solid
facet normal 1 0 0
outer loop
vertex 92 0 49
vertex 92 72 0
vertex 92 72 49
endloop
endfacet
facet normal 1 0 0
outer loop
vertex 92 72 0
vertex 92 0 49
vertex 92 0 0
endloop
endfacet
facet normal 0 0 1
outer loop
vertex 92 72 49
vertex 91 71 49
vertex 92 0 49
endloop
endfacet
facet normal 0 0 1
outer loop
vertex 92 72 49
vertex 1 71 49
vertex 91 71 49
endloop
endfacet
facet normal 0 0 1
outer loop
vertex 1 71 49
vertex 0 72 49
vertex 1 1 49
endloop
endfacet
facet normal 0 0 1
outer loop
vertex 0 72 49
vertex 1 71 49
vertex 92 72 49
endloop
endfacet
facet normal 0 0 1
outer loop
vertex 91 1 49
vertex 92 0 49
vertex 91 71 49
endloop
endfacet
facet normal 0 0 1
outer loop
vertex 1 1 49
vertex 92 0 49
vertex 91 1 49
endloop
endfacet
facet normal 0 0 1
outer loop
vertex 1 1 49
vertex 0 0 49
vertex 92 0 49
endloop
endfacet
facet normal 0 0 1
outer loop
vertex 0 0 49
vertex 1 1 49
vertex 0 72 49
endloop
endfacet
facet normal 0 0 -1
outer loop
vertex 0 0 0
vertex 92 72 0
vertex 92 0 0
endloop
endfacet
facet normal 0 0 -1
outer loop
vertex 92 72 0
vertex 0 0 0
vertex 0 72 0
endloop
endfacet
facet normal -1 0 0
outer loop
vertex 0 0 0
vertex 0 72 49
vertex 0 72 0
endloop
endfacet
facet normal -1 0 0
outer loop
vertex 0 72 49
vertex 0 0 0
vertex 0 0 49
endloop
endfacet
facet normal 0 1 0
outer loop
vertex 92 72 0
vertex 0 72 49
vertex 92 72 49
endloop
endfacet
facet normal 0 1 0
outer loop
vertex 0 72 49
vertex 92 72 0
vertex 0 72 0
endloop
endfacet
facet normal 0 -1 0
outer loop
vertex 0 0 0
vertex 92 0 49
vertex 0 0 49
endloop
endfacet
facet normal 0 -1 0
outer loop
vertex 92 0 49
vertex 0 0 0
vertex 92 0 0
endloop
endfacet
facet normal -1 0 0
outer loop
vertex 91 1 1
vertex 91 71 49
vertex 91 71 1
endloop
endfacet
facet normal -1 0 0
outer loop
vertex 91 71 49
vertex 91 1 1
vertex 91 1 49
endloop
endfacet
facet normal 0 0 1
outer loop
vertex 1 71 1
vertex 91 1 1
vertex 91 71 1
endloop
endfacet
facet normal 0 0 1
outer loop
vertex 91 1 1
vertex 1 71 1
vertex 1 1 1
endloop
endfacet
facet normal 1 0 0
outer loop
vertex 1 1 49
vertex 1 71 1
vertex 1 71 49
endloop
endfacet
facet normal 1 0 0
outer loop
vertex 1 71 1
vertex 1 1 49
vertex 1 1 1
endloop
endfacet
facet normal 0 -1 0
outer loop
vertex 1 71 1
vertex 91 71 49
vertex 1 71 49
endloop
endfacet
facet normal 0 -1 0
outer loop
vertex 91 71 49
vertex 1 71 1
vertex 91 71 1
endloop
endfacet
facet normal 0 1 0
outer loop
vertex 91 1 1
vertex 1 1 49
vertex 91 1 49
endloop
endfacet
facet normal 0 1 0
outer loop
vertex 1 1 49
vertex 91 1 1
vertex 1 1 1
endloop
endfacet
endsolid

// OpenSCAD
// 100 68w 40h



// 97 68 38


WW=90;
DD=70;
HH=48;
WALL=2;

difference() {
    cube([WW+WALL,DD+WALL,HH+WALL/2]);
    translate([WALL/2,WALL/2,WALL/2]) cube([WW,DD,HH]);
}
